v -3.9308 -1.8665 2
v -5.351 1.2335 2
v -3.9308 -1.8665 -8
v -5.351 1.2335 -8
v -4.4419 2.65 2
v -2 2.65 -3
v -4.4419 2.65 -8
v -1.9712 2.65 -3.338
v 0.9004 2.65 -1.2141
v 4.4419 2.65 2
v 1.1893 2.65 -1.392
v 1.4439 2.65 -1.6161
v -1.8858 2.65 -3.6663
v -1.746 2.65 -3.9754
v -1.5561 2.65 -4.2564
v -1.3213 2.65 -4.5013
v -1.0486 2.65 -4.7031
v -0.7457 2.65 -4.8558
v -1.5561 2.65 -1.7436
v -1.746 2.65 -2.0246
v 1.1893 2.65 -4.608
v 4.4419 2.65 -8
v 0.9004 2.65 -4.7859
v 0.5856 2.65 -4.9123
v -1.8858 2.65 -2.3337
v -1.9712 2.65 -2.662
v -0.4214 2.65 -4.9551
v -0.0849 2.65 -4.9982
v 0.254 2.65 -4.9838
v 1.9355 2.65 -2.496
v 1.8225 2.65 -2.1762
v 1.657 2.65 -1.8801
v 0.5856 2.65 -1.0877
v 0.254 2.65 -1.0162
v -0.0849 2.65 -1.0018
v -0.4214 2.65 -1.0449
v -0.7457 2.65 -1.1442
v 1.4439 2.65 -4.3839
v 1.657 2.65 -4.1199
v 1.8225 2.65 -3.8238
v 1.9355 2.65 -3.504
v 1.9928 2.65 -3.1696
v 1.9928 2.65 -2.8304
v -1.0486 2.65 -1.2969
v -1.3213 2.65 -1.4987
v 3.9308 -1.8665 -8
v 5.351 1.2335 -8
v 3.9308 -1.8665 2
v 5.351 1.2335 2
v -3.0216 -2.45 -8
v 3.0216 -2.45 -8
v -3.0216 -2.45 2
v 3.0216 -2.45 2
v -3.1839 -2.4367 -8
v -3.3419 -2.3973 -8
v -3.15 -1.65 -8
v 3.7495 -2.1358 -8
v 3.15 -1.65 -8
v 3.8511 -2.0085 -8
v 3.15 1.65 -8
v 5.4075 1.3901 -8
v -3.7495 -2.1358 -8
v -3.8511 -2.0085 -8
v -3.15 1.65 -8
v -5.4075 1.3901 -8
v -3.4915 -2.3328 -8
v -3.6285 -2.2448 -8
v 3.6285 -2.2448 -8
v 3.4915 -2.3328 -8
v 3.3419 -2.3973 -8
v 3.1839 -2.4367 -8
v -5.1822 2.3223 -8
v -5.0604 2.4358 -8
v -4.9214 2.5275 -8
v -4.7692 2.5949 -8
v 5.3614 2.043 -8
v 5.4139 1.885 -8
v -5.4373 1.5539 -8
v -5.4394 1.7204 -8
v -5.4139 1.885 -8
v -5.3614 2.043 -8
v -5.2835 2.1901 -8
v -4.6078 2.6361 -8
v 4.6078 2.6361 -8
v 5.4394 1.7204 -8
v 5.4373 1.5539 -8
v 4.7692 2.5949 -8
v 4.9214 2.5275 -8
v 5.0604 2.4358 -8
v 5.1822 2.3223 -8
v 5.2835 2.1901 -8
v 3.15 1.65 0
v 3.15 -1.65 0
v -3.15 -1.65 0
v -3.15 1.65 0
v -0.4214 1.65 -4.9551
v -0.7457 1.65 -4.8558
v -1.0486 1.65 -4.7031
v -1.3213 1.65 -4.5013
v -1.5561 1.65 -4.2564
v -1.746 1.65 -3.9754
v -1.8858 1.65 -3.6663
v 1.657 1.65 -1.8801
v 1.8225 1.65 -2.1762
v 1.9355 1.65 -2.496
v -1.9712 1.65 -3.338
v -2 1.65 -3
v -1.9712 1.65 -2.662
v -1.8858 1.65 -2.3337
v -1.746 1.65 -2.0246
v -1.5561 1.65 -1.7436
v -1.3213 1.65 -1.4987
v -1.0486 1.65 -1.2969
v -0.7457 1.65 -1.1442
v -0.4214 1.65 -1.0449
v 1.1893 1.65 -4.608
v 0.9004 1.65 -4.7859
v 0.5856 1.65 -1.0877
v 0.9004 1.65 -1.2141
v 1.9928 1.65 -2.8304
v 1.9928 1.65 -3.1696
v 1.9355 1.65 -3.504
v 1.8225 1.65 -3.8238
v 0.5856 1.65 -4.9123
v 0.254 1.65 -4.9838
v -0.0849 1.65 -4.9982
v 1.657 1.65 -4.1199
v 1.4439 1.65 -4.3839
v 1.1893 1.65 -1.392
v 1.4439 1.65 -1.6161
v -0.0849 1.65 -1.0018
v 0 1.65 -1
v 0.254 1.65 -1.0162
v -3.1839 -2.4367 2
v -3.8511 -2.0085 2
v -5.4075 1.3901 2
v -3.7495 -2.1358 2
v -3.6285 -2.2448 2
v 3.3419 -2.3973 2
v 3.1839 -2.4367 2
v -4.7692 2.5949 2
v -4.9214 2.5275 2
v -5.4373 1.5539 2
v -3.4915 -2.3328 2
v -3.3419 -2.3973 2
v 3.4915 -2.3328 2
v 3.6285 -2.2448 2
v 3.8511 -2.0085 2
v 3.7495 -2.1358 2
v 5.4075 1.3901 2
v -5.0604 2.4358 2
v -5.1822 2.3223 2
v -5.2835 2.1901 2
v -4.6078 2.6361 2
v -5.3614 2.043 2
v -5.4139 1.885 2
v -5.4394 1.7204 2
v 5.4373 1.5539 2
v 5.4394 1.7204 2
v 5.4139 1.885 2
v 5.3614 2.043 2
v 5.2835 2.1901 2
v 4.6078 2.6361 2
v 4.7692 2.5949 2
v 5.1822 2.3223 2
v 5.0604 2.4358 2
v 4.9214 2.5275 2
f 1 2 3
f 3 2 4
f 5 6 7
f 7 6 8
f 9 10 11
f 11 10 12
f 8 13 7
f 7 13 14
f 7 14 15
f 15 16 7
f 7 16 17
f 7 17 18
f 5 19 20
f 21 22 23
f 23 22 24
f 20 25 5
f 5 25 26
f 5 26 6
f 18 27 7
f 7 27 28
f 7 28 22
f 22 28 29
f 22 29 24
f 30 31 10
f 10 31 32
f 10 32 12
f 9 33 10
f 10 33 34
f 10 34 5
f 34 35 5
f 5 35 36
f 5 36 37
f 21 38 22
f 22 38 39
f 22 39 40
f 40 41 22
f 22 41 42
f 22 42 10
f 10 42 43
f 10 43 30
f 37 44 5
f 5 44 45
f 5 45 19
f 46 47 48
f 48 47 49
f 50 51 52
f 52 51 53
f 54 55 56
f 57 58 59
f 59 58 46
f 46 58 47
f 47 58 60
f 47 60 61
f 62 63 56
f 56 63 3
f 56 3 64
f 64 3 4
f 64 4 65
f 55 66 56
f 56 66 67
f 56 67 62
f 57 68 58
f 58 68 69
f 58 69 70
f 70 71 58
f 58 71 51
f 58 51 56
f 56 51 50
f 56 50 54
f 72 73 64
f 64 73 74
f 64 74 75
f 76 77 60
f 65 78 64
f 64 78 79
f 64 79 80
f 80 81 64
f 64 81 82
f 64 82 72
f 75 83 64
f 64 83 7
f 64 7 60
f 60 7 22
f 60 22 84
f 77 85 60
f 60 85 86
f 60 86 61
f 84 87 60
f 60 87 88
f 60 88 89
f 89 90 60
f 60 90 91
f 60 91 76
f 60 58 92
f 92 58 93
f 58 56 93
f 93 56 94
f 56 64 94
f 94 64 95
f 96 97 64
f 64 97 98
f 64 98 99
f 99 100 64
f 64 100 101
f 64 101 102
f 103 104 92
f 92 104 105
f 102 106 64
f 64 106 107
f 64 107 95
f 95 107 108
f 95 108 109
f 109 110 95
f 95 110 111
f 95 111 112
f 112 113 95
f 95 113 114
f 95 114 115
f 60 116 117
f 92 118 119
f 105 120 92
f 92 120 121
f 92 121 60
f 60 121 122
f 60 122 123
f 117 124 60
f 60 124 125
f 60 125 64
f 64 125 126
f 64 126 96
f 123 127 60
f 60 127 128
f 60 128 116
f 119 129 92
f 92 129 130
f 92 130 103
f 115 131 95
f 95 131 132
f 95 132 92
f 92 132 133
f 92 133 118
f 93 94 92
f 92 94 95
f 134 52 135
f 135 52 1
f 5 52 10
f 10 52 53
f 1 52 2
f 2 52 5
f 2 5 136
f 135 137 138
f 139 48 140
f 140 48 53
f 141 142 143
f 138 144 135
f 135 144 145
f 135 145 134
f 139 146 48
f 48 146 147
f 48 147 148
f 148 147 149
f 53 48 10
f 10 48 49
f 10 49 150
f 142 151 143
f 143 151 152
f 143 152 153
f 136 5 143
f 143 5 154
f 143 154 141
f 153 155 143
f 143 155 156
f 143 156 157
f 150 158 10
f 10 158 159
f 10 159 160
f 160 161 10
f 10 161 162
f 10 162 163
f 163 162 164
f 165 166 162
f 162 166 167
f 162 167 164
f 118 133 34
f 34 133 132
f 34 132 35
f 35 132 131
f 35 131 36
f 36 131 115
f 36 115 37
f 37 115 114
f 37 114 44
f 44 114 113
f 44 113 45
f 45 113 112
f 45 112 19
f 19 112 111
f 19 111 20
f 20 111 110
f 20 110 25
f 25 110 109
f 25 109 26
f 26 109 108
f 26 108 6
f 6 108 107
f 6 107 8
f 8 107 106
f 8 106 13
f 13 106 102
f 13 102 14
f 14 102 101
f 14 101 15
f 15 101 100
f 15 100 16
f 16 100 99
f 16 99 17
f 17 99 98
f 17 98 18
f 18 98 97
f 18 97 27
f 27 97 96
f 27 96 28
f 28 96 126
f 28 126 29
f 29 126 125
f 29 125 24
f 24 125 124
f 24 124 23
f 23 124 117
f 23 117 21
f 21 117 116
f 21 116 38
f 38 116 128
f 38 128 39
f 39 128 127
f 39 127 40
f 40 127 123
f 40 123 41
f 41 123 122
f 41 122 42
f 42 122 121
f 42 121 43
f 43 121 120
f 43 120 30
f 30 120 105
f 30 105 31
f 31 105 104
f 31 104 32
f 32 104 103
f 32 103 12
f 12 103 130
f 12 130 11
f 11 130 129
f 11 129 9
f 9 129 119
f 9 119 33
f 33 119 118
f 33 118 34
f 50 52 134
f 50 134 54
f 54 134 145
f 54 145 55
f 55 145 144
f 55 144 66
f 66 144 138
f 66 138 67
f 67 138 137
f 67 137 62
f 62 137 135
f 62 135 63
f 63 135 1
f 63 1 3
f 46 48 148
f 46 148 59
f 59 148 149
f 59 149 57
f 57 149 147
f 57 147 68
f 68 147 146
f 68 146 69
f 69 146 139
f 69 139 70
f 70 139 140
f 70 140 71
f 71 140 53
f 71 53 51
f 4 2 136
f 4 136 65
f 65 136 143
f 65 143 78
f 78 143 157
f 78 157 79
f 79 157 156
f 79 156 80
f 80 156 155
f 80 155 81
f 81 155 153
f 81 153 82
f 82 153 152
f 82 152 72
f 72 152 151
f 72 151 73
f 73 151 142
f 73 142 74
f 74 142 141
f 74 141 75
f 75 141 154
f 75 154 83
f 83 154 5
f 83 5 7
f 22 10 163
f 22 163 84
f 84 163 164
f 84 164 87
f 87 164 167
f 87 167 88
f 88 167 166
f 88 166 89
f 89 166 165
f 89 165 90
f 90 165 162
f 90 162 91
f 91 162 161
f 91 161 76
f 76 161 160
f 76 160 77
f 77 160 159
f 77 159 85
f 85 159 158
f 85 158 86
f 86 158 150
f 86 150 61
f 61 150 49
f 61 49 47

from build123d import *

# Parameters (mm, degrees)
SKETCH1_W           = 6.3
SKETCH1_H           = 3.3
BOSS_EXTRUDE1_DEPTH = 8
BOSS_EXTRUDE2_DEPTH = 2
SKETCH2_R           = 2
CUT_EXTRUDE1_DEPTH  = 1
FILLET1_R           = 1


with BuildPart() as part:
    # Sketch1 → Boss-Extrude1 (new body)
    with BuildSketch(Plane.XY):
        Polygon((-6, 2.65), (6, 2.65), (3.663445075, -2.45), (-3.663445075, -2.45), align=None)
        Rectangle(SKETCH1_W, SKETCH1_H, mode=Mode.SUBTRACT)
    extrude(amount=-BOSS_EXTRUDE1_DEPTH)

    # Sketch1<2> → Boss-Extrude2 (add)
    with BuildSketch(Plane.XY):
        Polygon((-6, 2.65), (6, 2.65), (3.663445075, -2.45), (-3.663445075, -2.45), align=None)
    extrude(amount=BOSS_EXTRUDE2_DEPTH)

    # Sketch2 → Cut-Extrude1 (cut)
    with BuildSketch(Plane(origin=(0, 2.65, 0), x_dir=(1, 0, 0), z_dir=(0, 1, 0))):
        with Locations(Location((0, 3, 0), (0, 0, 180))):
            Circle(SKETCH2_R)
    extrude(amount=-CUT_EXTRUDE1_DEPTH, mode=Mode.SUBTRACT)

    # Fillet1
    fillet1_edges = [part.edges().sort_by_distance(p)[0] for p in [
        (-6, 2.65, -3),
        (6, 2.65, -3),
        (3.663445075, -2.45, -3),
        (-3.663445075, -2.45, -3),
    ]]
    fillet(fillet1_edges, radius=FILLET1_R)


solid = part.part
